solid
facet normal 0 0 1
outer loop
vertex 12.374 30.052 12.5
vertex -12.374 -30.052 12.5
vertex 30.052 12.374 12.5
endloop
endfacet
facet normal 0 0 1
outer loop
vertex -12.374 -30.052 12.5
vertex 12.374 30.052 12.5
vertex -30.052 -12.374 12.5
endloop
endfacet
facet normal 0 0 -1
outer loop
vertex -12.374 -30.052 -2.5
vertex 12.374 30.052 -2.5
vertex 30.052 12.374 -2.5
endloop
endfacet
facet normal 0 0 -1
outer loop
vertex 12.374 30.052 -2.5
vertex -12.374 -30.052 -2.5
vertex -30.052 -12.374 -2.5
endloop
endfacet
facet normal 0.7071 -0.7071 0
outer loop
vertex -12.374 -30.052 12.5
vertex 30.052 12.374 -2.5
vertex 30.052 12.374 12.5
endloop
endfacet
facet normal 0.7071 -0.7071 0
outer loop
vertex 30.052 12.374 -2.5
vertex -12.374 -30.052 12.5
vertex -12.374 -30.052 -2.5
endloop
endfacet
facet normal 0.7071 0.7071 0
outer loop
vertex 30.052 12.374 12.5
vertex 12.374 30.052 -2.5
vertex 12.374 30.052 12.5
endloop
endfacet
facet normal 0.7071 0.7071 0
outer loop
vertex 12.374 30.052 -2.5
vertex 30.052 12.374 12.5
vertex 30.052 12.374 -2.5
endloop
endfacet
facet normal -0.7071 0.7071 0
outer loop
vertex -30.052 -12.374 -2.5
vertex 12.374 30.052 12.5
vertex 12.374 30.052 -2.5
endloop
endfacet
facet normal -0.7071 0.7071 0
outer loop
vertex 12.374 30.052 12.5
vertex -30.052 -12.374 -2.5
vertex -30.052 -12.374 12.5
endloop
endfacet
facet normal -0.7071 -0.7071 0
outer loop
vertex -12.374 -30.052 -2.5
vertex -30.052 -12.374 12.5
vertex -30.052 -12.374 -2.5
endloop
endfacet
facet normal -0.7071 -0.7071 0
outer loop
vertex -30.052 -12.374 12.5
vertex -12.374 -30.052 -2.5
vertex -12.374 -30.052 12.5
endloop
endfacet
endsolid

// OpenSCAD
// Define dimensions for the rectangular block
block_length = 60;  // Adjusted length of the block to match the original model
block_width = 25;   // Adjusted width of the block to match the original model
block_height = 15;  // Adjusted height of the block to match the original model

// Generate the rectangular block
module rectangular_block() {
    cube([block_length, block_width, block_height], center = true);
}

// Assemble the model with adjustments for rotation and position
translate([0, 0, 5])  // Adjusted vertical position to align with the original model
rotate([0, 0, 45])    // Adjusted rotation to match the original model
rectangular_block();
